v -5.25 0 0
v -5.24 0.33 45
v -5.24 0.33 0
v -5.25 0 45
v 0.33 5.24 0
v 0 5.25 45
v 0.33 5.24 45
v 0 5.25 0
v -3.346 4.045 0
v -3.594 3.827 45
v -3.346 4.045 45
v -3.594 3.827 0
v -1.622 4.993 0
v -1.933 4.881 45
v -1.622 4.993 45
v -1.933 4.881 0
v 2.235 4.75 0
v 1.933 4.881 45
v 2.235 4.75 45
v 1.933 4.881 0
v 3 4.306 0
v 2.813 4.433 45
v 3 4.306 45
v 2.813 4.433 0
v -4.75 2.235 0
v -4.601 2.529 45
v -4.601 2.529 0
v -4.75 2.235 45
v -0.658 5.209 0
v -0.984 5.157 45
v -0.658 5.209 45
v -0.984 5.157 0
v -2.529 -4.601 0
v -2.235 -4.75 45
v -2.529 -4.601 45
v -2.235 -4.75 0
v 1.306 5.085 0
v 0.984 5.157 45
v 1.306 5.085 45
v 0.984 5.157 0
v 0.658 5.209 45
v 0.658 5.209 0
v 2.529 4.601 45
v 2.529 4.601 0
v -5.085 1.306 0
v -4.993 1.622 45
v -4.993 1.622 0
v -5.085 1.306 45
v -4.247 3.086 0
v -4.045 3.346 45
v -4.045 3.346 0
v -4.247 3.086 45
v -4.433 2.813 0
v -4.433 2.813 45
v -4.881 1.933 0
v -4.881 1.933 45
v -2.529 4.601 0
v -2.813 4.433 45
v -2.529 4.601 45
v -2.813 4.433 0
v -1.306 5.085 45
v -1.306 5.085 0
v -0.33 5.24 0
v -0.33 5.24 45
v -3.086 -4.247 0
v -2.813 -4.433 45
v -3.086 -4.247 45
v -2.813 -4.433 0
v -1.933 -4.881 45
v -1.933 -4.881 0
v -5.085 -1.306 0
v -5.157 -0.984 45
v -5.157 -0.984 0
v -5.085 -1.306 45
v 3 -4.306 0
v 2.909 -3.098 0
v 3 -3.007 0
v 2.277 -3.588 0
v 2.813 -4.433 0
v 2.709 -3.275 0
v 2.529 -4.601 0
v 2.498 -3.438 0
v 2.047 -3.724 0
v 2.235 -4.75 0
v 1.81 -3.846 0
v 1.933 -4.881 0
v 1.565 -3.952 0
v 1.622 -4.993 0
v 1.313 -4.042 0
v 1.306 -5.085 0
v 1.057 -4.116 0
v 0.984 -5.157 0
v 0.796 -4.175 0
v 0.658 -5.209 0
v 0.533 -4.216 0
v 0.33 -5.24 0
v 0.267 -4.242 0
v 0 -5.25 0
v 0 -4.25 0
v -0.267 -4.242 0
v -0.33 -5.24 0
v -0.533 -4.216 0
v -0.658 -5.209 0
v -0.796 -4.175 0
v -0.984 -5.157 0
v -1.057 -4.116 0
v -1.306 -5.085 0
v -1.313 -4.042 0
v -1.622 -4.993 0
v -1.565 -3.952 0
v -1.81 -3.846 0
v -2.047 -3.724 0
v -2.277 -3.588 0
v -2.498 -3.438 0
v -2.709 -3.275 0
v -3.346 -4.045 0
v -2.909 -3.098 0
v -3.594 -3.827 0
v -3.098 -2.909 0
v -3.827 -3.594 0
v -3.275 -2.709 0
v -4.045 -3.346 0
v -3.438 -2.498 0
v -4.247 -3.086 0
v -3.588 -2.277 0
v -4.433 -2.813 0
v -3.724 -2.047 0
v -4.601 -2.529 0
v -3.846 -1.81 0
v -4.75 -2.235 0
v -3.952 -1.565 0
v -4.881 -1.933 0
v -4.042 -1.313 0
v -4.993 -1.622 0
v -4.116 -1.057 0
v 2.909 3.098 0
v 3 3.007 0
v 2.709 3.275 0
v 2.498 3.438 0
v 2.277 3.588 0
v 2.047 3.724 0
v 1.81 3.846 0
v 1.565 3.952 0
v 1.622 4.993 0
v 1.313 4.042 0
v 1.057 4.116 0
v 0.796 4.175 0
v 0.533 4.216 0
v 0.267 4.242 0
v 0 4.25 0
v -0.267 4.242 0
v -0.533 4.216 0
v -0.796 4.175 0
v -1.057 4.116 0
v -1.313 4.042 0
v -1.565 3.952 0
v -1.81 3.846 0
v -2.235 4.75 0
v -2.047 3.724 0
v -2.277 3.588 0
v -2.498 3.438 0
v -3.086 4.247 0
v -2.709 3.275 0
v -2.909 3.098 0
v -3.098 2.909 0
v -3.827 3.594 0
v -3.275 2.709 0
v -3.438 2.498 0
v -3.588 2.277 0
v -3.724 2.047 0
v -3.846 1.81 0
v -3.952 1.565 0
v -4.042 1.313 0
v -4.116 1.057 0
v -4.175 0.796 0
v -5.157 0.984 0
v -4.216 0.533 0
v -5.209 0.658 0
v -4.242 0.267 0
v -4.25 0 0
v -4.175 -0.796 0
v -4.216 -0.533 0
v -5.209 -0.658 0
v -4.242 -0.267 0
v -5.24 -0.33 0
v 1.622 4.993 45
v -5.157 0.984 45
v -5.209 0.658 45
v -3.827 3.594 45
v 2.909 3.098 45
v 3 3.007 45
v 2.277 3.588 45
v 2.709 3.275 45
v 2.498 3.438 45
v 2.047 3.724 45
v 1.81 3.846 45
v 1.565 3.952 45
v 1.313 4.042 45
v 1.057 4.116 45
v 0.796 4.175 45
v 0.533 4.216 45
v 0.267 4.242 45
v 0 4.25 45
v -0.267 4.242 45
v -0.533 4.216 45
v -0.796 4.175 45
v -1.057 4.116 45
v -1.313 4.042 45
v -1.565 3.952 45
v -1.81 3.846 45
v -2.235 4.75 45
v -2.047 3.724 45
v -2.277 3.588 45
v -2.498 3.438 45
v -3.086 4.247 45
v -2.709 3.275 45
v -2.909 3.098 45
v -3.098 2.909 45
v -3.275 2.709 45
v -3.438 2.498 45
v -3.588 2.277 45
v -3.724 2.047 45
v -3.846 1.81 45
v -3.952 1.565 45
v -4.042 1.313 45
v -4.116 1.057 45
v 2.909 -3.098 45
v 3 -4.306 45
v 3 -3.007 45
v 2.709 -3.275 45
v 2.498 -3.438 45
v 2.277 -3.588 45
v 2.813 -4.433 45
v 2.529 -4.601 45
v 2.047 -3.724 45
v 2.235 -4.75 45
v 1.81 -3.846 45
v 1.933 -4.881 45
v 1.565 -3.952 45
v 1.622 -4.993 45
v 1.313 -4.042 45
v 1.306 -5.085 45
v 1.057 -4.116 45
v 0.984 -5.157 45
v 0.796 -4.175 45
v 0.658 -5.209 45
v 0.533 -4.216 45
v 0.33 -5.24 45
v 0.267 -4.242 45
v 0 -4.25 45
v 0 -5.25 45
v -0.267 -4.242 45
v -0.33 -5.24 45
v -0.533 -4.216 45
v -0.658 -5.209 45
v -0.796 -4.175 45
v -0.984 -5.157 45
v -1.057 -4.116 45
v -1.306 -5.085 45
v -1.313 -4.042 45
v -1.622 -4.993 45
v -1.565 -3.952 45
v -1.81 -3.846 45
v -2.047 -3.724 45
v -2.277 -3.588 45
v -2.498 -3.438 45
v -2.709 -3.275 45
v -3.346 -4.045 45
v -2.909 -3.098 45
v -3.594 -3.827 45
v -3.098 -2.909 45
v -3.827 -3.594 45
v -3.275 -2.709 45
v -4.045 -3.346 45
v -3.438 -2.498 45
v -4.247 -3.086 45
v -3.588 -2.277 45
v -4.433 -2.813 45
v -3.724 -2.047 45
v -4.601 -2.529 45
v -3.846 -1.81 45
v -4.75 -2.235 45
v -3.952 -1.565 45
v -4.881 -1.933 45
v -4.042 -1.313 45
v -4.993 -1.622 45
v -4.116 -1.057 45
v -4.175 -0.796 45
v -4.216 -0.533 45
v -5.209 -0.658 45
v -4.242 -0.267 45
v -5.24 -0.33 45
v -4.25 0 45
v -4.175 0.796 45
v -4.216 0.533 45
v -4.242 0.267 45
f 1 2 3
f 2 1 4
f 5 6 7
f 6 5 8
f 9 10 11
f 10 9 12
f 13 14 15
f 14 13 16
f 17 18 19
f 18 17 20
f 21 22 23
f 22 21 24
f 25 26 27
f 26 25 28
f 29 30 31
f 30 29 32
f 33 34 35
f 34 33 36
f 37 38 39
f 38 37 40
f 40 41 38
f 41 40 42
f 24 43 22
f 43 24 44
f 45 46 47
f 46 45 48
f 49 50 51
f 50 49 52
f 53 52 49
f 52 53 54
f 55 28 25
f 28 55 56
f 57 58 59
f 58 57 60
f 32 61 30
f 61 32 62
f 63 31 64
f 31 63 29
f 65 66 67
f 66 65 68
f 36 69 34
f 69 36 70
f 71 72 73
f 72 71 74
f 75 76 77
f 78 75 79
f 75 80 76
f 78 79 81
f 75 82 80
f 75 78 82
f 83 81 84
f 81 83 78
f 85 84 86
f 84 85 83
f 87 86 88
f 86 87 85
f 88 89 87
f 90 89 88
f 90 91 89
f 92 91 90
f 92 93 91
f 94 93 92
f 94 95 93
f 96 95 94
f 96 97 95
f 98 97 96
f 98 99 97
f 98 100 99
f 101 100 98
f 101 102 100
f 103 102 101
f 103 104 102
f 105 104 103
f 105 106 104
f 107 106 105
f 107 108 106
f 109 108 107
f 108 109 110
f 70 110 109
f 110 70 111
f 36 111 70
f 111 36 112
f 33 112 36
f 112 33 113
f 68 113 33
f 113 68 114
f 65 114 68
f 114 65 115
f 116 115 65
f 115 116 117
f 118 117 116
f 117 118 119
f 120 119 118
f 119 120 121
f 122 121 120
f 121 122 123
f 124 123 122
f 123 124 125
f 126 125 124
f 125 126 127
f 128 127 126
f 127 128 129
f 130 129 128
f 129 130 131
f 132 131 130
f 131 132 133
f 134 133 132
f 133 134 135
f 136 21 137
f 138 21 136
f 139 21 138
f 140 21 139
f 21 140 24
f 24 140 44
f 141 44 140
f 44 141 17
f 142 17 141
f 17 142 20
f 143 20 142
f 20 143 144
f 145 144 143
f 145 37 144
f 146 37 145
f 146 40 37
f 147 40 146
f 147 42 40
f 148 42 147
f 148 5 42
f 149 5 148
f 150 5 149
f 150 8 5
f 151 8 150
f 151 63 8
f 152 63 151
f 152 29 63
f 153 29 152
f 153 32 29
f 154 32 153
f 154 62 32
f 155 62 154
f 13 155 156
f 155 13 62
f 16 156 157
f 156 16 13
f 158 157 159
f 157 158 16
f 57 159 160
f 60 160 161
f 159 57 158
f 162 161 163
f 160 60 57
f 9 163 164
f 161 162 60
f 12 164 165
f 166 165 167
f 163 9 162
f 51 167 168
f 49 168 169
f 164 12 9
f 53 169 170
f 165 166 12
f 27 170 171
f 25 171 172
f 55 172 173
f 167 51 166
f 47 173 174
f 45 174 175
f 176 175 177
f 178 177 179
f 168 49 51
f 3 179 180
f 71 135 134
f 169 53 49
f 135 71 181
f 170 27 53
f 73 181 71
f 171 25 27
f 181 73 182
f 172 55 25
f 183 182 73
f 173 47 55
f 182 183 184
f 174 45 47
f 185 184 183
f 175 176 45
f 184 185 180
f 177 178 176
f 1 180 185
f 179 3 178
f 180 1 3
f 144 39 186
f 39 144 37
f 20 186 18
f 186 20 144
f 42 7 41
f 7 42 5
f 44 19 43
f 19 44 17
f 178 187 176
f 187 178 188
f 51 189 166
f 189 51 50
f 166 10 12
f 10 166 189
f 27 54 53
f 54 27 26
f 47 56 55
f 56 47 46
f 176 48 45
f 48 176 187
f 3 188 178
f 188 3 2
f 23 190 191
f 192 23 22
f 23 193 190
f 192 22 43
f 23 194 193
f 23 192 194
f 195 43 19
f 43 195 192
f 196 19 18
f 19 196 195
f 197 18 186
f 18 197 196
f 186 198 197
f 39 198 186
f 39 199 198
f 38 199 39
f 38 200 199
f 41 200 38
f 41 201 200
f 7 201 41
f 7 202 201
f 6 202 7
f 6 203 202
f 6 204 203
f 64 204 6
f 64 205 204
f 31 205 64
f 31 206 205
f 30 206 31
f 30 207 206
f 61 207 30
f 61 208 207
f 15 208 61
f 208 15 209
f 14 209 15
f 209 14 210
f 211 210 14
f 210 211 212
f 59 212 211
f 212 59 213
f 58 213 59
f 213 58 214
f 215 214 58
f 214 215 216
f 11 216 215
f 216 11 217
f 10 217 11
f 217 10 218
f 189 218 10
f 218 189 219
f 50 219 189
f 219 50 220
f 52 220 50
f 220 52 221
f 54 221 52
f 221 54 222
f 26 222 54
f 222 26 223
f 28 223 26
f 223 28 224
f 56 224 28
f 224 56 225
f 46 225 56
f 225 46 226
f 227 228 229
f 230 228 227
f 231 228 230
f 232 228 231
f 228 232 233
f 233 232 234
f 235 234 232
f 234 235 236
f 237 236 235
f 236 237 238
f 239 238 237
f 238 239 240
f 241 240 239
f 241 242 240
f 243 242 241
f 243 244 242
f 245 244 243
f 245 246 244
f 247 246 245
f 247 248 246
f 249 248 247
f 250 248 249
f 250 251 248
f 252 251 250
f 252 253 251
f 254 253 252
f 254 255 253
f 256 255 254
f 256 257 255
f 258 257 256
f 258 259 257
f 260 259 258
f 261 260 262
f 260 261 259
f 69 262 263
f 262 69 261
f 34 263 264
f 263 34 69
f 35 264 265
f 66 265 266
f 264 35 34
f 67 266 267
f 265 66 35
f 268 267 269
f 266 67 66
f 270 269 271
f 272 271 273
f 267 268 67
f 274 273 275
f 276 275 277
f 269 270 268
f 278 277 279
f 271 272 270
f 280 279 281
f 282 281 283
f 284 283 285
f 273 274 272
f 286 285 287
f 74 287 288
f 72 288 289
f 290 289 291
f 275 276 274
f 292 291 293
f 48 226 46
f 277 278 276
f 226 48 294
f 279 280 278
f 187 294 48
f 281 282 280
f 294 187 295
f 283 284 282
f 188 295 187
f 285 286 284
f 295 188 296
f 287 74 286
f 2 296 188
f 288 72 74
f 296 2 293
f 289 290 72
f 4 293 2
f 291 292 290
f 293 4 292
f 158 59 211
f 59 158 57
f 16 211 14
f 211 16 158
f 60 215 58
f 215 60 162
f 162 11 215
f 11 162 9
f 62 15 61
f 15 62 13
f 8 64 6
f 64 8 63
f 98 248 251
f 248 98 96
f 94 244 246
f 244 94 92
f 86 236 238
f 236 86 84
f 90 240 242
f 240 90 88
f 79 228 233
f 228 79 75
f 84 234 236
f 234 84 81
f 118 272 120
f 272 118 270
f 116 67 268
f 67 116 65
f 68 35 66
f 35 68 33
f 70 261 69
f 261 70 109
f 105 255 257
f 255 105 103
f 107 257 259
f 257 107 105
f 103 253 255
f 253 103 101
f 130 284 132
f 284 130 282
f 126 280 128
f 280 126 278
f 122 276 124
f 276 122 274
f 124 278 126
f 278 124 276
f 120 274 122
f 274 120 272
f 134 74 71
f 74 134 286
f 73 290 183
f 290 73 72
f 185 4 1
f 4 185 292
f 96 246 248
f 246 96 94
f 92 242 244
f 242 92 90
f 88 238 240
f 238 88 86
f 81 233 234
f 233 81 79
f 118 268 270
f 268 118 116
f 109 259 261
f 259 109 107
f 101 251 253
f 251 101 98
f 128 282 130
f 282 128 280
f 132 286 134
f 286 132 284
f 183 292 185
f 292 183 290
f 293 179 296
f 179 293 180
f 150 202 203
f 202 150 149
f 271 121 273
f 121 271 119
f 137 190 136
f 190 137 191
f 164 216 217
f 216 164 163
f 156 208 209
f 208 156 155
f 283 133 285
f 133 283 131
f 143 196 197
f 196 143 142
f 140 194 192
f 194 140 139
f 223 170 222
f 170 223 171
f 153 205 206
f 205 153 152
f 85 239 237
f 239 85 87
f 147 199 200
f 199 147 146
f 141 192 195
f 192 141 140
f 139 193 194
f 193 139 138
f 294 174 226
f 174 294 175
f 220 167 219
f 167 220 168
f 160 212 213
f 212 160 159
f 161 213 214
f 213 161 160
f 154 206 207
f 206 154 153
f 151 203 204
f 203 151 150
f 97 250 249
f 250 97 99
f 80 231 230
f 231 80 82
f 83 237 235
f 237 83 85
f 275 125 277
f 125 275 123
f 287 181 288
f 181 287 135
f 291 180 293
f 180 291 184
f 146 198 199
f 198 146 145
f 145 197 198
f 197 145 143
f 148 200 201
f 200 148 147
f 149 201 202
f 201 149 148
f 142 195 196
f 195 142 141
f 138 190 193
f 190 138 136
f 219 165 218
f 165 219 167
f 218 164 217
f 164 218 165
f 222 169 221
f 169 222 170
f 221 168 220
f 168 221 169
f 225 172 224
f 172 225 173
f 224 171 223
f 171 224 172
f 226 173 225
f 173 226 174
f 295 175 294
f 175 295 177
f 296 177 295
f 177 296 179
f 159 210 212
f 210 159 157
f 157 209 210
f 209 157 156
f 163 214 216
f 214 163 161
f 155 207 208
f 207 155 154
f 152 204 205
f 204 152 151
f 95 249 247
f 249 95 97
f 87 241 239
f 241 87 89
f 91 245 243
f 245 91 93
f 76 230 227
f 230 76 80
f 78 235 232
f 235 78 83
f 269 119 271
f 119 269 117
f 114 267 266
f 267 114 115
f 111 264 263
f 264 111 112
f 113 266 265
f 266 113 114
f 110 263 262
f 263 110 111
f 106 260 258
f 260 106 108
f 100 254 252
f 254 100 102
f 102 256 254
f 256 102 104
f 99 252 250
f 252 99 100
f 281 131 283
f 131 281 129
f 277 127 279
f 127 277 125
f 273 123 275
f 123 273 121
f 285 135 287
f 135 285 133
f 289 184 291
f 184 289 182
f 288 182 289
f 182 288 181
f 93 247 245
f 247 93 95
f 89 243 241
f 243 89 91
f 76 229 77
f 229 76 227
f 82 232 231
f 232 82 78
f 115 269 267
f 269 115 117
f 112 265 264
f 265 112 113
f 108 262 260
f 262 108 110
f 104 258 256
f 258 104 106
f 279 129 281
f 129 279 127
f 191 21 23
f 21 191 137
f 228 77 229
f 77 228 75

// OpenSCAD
height = 45;
outer_diam = 10.5 / 2;
inner_diam = 8.5 / 2;

$fn = 100;

difference()
{
    cylinder(h = height, r = outer_diam);
    cylinder(h = height, r = inner_diam);
    translate([3, -outer_diam, 0])
    {
        cube(size = [outer_diam, 2*outer_diam, height]);
    }
}
